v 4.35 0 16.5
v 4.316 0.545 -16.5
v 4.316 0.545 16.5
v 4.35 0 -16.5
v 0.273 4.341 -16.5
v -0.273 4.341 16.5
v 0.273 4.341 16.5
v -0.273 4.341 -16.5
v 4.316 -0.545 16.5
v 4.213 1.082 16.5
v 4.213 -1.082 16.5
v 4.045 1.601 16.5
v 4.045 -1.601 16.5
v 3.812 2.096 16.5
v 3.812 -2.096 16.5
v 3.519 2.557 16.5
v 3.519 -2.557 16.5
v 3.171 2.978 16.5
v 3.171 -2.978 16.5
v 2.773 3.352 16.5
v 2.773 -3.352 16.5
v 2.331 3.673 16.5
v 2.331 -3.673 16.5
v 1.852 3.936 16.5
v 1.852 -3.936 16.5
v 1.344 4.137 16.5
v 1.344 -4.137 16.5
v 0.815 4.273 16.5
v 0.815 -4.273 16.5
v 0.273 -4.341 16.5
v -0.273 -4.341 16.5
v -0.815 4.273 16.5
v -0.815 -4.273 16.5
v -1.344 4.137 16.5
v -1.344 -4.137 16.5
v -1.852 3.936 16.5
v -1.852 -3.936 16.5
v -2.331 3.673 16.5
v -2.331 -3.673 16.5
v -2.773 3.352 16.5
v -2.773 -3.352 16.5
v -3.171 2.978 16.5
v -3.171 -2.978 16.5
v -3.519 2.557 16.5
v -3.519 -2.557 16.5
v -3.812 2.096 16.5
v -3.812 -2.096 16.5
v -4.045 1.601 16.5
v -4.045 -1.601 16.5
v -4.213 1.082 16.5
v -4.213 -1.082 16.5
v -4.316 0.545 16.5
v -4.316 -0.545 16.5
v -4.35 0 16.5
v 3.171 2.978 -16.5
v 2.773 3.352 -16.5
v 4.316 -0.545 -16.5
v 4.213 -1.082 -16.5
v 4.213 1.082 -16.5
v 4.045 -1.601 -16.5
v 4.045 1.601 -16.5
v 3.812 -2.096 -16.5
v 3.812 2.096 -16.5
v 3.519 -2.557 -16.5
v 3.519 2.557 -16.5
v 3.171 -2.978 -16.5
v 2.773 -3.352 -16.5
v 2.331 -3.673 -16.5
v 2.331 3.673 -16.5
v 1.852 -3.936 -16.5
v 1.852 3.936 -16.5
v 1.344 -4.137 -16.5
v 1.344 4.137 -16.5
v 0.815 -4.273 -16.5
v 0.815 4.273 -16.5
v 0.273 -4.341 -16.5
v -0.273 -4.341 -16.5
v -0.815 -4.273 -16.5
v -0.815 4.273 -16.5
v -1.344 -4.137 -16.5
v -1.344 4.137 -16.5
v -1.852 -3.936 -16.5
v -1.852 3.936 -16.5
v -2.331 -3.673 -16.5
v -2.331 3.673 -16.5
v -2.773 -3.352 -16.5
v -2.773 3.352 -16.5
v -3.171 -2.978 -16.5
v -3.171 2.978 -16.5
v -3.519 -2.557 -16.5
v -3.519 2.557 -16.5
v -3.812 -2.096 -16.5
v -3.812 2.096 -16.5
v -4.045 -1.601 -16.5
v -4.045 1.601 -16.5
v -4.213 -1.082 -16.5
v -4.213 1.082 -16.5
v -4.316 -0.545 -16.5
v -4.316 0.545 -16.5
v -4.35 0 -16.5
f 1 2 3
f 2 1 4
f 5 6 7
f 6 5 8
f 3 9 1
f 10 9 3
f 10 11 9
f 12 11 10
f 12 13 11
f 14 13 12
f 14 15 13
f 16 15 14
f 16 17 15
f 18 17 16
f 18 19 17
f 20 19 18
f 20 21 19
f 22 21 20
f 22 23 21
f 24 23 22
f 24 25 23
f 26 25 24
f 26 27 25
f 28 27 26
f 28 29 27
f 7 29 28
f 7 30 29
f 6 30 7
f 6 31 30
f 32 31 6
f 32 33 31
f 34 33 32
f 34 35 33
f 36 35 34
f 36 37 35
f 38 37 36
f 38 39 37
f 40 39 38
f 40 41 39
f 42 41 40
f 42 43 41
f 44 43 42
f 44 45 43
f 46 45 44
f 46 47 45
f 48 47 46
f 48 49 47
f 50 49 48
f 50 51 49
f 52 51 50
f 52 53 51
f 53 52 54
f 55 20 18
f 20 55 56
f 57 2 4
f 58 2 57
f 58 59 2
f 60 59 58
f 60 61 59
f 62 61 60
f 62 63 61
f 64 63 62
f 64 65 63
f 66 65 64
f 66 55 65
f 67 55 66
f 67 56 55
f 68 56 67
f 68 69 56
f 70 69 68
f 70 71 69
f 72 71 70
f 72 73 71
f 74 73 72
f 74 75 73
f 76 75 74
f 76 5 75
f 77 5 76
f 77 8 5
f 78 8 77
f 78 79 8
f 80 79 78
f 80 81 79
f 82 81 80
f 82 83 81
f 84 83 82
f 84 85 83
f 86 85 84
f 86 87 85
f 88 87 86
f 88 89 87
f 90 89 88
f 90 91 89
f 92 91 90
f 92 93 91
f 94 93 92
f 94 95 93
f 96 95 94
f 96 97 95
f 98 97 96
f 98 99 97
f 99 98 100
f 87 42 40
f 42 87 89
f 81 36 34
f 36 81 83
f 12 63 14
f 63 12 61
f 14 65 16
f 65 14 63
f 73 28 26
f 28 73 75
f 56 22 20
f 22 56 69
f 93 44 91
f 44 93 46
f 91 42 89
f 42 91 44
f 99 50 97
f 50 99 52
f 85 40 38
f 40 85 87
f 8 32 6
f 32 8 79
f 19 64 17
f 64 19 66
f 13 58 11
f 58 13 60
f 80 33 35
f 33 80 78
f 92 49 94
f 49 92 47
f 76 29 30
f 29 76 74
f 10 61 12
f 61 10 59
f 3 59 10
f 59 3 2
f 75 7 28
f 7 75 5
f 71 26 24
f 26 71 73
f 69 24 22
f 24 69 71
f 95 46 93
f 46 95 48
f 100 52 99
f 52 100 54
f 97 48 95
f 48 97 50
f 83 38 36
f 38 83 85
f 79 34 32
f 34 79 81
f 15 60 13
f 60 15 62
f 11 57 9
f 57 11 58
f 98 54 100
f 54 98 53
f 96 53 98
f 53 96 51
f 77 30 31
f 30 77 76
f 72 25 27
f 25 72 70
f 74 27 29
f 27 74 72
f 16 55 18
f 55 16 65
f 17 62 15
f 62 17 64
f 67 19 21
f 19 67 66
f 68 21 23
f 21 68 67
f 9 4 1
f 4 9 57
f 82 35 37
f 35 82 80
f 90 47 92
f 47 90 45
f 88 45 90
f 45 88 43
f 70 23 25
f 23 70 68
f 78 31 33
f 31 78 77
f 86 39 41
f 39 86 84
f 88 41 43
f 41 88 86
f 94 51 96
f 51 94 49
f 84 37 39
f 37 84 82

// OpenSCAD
$fn = 50;


difference() {
	union() {
		translate(v = [0, 0, -16.5000000000]) {
			cylinder(h = 33, r = 4.3500000000);
		}
	}
	union() {
		translate(v = [0, 0, -100.0000000000]) {
			cylinder(h = 200, r = 0);
		}
	}
}
